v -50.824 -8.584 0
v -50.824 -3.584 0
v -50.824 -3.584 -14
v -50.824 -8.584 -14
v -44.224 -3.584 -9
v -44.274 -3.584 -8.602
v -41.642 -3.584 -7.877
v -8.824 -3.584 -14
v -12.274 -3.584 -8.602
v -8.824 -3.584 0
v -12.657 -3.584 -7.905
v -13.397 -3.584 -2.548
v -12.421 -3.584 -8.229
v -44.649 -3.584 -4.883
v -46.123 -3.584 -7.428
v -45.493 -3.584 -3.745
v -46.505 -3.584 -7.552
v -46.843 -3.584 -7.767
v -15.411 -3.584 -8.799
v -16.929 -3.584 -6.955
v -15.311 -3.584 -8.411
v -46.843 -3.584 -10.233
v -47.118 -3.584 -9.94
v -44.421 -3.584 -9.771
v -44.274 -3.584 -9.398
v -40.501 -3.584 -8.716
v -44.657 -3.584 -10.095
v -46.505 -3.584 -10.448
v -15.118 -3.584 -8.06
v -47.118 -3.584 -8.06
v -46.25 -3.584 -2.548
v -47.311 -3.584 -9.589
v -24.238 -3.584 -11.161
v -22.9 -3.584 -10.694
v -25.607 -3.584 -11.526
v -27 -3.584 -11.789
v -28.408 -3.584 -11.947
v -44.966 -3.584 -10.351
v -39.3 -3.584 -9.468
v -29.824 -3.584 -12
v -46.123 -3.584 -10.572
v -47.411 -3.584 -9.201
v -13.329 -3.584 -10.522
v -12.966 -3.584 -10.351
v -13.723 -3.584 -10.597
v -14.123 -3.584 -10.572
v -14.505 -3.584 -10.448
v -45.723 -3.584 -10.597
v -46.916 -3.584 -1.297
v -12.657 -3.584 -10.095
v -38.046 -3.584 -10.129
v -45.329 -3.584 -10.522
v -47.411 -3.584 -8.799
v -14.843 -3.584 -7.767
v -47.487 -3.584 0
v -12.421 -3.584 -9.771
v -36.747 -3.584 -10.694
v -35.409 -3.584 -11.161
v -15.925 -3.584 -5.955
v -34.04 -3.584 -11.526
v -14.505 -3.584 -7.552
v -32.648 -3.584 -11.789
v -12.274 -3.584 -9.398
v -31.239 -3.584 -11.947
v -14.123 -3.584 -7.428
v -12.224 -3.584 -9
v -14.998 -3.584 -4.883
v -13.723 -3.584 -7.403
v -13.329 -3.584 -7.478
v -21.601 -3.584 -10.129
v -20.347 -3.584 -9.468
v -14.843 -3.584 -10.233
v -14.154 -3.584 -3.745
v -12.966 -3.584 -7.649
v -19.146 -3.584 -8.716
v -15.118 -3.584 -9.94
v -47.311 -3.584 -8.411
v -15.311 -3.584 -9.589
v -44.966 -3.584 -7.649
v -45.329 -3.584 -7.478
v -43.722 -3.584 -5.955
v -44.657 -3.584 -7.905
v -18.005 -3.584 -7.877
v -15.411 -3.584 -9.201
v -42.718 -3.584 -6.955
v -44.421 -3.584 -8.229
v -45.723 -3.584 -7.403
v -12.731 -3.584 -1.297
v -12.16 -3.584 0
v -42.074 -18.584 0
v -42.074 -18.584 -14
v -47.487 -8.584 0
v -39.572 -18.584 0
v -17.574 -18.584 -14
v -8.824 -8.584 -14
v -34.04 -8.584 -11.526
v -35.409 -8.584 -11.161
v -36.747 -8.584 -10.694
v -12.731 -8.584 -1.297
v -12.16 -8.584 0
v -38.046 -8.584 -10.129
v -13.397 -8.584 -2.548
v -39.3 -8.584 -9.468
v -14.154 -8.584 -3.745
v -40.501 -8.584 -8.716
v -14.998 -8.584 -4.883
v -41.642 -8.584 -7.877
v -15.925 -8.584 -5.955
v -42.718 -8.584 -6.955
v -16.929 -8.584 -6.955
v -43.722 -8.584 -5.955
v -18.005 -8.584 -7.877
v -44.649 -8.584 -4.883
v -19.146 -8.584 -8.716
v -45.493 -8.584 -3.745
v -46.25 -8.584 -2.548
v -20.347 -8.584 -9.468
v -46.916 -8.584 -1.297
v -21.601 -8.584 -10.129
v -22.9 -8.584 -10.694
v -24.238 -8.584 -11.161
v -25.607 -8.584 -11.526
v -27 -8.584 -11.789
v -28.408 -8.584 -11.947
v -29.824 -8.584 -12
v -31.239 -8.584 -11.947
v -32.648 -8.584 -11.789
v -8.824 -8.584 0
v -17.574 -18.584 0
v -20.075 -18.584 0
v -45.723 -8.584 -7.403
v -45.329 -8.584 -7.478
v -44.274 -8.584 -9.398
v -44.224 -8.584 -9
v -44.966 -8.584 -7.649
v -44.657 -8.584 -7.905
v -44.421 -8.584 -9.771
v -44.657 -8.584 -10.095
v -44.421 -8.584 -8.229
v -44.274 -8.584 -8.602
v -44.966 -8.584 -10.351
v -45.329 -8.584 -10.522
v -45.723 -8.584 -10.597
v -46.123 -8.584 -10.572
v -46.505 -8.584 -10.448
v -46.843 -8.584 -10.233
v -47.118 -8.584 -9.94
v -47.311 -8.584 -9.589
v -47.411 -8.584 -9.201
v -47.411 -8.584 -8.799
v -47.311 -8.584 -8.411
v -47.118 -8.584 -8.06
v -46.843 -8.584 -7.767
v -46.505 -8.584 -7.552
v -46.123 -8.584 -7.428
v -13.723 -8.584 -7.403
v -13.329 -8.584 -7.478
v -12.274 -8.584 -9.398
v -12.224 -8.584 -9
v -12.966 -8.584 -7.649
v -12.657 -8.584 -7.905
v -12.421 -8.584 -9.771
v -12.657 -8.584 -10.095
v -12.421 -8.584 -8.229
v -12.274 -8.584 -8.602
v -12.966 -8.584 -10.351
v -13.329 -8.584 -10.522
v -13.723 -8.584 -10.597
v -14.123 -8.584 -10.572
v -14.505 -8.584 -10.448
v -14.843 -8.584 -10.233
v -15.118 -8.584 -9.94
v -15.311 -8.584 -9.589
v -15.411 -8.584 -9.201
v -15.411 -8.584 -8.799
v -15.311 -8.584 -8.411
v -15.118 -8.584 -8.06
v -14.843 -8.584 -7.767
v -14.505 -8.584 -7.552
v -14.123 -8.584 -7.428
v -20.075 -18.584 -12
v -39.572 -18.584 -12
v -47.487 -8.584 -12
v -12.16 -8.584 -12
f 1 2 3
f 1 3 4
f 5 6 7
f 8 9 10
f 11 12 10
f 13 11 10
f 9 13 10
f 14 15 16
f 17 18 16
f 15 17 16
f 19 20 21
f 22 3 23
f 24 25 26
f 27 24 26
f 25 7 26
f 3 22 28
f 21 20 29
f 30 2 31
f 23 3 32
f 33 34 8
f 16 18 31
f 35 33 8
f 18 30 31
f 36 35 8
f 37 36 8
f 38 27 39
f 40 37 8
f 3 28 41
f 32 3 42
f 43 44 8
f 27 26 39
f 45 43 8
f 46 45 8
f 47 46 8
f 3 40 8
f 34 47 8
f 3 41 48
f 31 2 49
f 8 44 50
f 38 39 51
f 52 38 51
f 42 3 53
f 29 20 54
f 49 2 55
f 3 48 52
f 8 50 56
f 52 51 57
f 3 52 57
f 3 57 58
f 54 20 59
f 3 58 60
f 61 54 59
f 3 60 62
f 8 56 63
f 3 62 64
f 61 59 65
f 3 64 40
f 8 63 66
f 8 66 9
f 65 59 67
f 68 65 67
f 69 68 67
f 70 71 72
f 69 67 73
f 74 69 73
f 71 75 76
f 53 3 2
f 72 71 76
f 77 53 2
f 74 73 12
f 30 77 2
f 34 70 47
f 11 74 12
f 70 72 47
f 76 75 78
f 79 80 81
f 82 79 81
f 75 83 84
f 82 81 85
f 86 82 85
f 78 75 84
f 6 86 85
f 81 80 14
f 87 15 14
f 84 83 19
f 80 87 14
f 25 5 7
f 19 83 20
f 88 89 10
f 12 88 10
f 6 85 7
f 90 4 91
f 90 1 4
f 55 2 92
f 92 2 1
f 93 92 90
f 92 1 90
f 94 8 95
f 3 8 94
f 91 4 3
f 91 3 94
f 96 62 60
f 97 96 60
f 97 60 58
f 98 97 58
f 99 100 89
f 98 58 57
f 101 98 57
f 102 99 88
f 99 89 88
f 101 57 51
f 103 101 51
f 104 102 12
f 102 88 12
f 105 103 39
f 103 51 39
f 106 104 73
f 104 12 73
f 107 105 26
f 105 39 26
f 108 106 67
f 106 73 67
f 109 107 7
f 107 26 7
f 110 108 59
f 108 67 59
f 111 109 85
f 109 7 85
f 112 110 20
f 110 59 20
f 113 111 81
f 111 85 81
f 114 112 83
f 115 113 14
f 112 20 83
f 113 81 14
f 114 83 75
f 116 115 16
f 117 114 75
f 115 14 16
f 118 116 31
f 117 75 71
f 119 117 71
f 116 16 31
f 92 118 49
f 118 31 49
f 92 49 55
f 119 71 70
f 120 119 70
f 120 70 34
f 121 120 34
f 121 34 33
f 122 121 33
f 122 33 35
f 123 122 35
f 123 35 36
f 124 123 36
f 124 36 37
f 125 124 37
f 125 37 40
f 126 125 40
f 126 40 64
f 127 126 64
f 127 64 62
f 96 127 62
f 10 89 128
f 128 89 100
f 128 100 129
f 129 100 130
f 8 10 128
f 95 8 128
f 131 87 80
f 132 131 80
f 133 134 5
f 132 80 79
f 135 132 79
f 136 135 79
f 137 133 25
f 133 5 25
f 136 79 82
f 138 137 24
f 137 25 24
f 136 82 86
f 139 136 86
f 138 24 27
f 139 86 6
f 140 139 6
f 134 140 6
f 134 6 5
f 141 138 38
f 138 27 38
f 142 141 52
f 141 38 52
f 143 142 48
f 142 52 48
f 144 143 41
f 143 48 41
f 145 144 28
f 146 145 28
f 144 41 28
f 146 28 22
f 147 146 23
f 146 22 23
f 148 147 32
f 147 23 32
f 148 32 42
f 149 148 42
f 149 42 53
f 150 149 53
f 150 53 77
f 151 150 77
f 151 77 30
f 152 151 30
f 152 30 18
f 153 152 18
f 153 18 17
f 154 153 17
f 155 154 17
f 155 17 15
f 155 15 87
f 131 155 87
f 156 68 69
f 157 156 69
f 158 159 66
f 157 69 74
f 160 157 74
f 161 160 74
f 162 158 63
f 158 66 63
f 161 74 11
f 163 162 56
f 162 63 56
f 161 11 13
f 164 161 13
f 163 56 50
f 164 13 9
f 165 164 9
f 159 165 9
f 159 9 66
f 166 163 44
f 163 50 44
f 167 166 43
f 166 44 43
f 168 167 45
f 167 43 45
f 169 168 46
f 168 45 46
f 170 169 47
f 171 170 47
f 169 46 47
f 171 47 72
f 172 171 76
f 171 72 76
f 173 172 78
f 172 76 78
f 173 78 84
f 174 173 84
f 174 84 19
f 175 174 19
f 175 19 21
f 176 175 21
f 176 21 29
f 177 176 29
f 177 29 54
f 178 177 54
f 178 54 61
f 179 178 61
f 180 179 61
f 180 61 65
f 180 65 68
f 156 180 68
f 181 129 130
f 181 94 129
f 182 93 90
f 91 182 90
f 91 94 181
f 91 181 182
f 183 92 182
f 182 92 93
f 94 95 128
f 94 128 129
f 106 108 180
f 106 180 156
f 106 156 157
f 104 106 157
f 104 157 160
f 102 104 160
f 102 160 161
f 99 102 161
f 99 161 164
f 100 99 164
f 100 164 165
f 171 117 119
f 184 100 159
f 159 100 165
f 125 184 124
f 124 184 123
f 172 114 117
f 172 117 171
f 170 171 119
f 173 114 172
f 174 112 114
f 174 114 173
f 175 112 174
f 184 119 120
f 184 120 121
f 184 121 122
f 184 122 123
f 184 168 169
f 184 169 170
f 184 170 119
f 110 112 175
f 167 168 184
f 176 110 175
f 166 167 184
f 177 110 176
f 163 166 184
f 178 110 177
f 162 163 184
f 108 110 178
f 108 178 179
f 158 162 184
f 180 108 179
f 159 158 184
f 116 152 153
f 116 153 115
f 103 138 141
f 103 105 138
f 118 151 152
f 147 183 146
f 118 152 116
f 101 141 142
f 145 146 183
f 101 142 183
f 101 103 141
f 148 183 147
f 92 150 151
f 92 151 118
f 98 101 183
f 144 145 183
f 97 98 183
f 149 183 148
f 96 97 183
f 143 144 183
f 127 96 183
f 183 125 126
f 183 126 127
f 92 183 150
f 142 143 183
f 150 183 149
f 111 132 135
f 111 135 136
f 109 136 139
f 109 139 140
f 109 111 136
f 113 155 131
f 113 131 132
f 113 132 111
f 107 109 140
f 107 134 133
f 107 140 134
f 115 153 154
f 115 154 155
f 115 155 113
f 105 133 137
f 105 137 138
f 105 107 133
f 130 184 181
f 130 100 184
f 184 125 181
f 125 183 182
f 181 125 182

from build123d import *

# Parameters (mm, degrees)
PAD_DEPTH       = 14
SKETCH001_R     = 19
POCKET_DEPTH    = 5
POCKET001_DEPTH = 12
SKETCH003_R     = 1.6
POCKET002_DEPTH = 5
SKETCH004_W     = 42
SKETCH004_H     = 8
POCKET003_DEPTH = 14


with BuildPart() as part:
    # Sketch → Pad (new body)
    with BuildSketch(Plane(origin=(0, 0, 0), x_dir=(1, 0, 0), z_dir=(0, 0, -1))):
        Polygon((-50.823539, 3.584357), (-8.823539, 3.584357), (-8.823539, 8.584357), (-22.823539, 24.584357), (-36.823539, 24.584357), (-50.823539, 8.584357), align=None)
    extrude(amount=PAD_DEPTH)

    # Sketch001 → Pocket (cut)
    with BuildSketch(Plane(origin=(0, -3.584357, 0), x_dir=(1, 0, 0), z_dir=(0, 1, 0))):
        with Locations((-29.823539, -7)):
            Circle(SKETCH001_R)
    extrude(amount=-POCKET_DEPTH, mode=Mode.SUBTRACT)

    # Sketch002 → Pocket001 (cut)
    with BuildSketch(Plane.XY):
        Polygon((-47.487061, -8.584357), (-34.823539, -24.584357), (-24.823539, -24.584357), (-12.160017, -8.584357), align=None)
    extrude(amount=-POCKET001_DEPTH, mode=Mode.SUBTRACT)

    # Sketch003 → Pocket002 (cut)
    with BuildSketch(Plane(origin=(0, -3.584357, 0), x_dir=(1, 0, 0), z_dir=(0, 1, 0))):
        with Locations((-45.823539, 9)):
            Circle(SKETCH003_R)
        with Locations((-13.823539, 9)):
            Circle(SKETCH003_R)
    extrude(amount=-POCKET002_DEPTH, mode=Mode.SUBTRACT)

    # Sketch004 → Pocket003 (cut)
    with BuildSketch(Plane(origin=(0, 0, -14), x_dir=(1, 0, 0), z_dir=(0, 0, -1))):
        with Locations((-29.823539, 22.584357)):
            Rectangle(SKETCH004_W, SKETCH004_H)
    extrude(amount=-POCKET003_DEPTH, mode=Mode.SUBTRACT)


solid = part.part
